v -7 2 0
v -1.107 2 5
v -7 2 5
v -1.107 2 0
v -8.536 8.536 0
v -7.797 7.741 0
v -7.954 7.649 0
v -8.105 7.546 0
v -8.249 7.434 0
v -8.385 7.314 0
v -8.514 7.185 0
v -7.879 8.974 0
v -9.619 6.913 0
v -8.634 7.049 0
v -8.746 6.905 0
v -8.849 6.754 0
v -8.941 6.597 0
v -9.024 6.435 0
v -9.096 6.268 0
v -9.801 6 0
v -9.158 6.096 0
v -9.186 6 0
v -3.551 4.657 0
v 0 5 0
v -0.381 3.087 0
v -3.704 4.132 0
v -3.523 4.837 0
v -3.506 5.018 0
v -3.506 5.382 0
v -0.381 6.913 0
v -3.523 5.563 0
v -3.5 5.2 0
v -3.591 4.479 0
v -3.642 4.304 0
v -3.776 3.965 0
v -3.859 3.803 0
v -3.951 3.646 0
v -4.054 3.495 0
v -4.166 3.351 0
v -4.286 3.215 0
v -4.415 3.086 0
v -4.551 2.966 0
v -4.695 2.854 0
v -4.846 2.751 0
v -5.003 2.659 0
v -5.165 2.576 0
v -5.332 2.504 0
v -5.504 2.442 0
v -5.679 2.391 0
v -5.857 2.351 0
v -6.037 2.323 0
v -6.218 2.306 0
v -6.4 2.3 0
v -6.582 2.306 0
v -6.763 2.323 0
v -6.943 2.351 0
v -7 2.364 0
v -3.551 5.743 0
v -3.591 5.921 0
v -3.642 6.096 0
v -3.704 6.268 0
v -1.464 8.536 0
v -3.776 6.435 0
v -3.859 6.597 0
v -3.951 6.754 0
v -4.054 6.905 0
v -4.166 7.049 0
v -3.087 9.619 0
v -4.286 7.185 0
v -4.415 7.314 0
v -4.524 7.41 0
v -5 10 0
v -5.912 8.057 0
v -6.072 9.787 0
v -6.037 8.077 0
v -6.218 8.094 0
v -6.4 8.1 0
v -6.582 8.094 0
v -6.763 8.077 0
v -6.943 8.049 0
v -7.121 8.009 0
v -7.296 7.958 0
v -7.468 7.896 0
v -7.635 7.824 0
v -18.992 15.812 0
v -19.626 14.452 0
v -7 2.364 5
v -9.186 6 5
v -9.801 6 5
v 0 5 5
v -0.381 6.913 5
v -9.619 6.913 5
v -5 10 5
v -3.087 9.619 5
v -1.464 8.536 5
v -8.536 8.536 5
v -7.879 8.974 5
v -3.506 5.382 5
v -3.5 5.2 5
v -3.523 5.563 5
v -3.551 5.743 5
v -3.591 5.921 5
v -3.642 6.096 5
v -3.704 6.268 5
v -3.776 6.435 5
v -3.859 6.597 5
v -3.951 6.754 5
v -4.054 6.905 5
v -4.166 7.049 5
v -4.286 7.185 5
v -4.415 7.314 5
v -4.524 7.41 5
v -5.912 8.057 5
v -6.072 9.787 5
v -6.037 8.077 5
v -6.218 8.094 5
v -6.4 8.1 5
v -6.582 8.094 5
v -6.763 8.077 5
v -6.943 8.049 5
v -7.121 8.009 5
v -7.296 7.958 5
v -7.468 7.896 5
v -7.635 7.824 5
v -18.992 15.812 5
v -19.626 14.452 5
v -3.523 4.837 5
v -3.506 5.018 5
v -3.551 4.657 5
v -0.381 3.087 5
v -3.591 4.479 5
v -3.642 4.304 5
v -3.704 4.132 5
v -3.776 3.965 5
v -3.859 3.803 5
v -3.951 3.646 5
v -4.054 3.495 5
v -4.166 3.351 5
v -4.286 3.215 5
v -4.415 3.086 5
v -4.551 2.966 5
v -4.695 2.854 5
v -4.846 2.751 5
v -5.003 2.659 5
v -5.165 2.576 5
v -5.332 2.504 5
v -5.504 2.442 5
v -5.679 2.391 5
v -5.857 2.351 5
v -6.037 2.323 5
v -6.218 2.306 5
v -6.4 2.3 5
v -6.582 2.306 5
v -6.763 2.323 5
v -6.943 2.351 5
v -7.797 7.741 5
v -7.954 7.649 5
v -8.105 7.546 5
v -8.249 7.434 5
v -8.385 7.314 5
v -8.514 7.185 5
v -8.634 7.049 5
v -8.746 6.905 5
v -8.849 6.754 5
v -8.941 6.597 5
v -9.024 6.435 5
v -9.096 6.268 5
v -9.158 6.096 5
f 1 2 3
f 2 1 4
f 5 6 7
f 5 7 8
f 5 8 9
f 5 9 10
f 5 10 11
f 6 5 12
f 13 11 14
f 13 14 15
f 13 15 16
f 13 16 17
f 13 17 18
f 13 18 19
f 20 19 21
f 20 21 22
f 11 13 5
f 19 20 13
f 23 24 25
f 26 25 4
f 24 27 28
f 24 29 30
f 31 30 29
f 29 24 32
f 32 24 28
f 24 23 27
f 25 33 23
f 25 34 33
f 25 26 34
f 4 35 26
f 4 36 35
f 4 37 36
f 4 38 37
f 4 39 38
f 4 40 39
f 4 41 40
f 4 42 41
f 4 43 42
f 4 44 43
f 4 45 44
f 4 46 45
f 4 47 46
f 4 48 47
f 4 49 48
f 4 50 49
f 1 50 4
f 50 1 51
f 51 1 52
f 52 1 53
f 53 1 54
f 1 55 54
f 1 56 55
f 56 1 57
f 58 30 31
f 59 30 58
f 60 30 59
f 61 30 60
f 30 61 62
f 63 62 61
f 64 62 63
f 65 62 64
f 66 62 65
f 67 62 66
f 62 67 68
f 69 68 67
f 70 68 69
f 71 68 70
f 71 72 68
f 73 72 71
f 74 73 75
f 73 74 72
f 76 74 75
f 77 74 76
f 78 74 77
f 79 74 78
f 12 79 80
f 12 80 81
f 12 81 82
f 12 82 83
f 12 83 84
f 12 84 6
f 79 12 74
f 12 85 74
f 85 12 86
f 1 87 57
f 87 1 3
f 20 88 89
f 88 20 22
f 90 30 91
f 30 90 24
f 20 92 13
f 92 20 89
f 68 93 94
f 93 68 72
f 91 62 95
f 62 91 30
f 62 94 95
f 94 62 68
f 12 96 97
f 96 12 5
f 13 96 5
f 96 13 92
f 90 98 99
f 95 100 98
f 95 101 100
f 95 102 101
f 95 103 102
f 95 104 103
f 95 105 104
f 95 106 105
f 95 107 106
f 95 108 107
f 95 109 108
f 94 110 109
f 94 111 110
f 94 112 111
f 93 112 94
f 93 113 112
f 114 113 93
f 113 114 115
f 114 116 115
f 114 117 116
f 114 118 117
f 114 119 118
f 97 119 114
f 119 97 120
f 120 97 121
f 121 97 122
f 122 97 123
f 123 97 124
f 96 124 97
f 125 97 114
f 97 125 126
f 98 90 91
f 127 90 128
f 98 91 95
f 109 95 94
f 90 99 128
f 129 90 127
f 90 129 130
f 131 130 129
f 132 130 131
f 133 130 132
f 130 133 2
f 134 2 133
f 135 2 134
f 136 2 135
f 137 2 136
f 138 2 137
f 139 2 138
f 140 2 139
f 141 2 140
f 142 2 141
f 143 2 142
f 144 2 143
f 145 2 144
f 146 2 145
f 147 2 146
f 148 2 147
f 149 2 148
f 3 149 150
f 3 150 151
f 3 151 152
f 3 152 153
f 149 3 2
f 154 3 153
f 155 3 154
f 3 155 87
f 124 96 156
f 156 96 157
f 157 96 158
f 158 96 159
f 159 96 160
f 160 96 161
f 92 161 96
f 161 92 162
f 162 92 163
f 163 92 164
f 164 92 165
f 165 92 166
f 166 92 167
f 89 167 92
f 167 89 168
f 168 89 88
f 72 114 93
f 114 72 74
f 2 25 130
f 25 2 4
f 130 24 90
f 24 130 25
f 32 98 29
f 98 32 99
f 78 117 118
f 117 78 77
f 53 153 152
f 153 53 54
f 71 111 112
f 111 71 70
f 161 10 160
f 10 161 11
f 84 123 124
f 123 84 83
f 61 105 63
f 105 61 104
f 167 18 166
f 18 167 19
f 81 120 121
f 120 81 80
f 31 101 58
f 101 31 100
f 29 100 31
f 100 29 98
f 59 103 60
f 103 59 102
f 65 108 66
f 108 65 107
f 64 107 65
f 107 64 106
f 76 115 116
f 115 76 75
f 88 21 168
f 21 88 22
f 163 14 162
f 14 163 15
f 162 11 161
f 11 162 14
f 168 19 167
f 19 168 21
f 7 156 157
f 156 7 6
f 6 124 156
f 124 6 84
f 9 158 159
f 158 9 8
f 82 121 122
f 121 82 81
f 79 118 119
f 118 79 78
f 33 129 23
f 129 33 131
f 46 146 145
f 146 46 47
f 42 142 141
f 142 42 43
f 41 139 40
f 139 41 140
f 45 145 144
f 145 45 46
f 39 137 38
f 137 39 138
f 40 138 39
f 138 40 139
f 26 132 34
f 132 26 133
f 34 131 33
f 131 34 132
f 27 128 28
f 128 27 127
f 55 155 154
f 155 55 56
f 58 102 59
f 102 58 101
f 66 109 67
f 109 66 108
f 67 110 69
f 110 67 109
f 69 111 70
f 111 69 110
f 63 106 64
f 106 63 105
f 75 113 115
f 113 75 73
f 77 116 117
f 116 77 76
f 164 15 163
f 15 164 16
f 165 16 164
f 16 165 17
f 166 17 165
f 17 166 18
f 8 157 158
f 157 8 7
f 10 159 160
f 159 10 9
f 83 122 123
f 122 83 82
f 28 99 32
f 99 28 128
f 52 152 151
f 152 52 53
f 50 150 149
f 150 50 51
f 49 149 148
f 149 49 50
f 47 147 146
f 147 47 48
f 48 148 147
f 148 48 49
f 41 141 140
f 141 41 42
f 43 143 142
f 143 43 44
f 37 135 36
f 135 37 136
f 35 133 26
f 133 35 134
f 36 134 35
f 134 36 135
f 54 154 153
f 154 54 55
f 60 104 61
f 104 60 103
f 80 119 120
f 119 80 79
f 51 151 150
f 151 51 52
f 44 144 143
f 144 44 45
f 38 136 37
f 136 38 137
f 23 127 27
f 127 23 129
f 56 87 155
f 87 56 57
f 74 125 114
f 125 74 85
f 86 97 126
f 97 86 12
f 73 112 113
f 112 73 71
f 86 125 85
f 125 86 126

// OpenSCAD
//include <relativity.scad>

radio_borde = 10/2;
radio_pajita = 5.8/2;
altura = 5;


varandilla();
difference() {
  difference() {
    soporte(altura);
  }
  taladros_pagitas();
  quitar_material();
}


module soporte(altura) {
  posicion_soporte = [-5, 5, 0];
  hull() {
    translate(posicion_soporte)
    cylinder(r=radio_borde, h=altura);
  }
}

module varandilla() {
  translate([-1.5, 6, 0]) {
    rotate([0, 0, 65]) {
      cube(size=[1.5, 20, 5]);
    }
  }
}

module taladros_pagitas() {
  altura_taladro = 40;
  posicion_taladro = [-6.4, 5.2, -1];

    translate(posicion_taladro)
      cylinder(r=radio_pajita, h=altura_taladro, $fn=100);
}

module quitar_material() {
  translate([-17, -2, 0])
    cube(size=[17, 4, 10]);
  translate([-12, -4, 0])
    cube(size=[5, 10, 10]);
}
